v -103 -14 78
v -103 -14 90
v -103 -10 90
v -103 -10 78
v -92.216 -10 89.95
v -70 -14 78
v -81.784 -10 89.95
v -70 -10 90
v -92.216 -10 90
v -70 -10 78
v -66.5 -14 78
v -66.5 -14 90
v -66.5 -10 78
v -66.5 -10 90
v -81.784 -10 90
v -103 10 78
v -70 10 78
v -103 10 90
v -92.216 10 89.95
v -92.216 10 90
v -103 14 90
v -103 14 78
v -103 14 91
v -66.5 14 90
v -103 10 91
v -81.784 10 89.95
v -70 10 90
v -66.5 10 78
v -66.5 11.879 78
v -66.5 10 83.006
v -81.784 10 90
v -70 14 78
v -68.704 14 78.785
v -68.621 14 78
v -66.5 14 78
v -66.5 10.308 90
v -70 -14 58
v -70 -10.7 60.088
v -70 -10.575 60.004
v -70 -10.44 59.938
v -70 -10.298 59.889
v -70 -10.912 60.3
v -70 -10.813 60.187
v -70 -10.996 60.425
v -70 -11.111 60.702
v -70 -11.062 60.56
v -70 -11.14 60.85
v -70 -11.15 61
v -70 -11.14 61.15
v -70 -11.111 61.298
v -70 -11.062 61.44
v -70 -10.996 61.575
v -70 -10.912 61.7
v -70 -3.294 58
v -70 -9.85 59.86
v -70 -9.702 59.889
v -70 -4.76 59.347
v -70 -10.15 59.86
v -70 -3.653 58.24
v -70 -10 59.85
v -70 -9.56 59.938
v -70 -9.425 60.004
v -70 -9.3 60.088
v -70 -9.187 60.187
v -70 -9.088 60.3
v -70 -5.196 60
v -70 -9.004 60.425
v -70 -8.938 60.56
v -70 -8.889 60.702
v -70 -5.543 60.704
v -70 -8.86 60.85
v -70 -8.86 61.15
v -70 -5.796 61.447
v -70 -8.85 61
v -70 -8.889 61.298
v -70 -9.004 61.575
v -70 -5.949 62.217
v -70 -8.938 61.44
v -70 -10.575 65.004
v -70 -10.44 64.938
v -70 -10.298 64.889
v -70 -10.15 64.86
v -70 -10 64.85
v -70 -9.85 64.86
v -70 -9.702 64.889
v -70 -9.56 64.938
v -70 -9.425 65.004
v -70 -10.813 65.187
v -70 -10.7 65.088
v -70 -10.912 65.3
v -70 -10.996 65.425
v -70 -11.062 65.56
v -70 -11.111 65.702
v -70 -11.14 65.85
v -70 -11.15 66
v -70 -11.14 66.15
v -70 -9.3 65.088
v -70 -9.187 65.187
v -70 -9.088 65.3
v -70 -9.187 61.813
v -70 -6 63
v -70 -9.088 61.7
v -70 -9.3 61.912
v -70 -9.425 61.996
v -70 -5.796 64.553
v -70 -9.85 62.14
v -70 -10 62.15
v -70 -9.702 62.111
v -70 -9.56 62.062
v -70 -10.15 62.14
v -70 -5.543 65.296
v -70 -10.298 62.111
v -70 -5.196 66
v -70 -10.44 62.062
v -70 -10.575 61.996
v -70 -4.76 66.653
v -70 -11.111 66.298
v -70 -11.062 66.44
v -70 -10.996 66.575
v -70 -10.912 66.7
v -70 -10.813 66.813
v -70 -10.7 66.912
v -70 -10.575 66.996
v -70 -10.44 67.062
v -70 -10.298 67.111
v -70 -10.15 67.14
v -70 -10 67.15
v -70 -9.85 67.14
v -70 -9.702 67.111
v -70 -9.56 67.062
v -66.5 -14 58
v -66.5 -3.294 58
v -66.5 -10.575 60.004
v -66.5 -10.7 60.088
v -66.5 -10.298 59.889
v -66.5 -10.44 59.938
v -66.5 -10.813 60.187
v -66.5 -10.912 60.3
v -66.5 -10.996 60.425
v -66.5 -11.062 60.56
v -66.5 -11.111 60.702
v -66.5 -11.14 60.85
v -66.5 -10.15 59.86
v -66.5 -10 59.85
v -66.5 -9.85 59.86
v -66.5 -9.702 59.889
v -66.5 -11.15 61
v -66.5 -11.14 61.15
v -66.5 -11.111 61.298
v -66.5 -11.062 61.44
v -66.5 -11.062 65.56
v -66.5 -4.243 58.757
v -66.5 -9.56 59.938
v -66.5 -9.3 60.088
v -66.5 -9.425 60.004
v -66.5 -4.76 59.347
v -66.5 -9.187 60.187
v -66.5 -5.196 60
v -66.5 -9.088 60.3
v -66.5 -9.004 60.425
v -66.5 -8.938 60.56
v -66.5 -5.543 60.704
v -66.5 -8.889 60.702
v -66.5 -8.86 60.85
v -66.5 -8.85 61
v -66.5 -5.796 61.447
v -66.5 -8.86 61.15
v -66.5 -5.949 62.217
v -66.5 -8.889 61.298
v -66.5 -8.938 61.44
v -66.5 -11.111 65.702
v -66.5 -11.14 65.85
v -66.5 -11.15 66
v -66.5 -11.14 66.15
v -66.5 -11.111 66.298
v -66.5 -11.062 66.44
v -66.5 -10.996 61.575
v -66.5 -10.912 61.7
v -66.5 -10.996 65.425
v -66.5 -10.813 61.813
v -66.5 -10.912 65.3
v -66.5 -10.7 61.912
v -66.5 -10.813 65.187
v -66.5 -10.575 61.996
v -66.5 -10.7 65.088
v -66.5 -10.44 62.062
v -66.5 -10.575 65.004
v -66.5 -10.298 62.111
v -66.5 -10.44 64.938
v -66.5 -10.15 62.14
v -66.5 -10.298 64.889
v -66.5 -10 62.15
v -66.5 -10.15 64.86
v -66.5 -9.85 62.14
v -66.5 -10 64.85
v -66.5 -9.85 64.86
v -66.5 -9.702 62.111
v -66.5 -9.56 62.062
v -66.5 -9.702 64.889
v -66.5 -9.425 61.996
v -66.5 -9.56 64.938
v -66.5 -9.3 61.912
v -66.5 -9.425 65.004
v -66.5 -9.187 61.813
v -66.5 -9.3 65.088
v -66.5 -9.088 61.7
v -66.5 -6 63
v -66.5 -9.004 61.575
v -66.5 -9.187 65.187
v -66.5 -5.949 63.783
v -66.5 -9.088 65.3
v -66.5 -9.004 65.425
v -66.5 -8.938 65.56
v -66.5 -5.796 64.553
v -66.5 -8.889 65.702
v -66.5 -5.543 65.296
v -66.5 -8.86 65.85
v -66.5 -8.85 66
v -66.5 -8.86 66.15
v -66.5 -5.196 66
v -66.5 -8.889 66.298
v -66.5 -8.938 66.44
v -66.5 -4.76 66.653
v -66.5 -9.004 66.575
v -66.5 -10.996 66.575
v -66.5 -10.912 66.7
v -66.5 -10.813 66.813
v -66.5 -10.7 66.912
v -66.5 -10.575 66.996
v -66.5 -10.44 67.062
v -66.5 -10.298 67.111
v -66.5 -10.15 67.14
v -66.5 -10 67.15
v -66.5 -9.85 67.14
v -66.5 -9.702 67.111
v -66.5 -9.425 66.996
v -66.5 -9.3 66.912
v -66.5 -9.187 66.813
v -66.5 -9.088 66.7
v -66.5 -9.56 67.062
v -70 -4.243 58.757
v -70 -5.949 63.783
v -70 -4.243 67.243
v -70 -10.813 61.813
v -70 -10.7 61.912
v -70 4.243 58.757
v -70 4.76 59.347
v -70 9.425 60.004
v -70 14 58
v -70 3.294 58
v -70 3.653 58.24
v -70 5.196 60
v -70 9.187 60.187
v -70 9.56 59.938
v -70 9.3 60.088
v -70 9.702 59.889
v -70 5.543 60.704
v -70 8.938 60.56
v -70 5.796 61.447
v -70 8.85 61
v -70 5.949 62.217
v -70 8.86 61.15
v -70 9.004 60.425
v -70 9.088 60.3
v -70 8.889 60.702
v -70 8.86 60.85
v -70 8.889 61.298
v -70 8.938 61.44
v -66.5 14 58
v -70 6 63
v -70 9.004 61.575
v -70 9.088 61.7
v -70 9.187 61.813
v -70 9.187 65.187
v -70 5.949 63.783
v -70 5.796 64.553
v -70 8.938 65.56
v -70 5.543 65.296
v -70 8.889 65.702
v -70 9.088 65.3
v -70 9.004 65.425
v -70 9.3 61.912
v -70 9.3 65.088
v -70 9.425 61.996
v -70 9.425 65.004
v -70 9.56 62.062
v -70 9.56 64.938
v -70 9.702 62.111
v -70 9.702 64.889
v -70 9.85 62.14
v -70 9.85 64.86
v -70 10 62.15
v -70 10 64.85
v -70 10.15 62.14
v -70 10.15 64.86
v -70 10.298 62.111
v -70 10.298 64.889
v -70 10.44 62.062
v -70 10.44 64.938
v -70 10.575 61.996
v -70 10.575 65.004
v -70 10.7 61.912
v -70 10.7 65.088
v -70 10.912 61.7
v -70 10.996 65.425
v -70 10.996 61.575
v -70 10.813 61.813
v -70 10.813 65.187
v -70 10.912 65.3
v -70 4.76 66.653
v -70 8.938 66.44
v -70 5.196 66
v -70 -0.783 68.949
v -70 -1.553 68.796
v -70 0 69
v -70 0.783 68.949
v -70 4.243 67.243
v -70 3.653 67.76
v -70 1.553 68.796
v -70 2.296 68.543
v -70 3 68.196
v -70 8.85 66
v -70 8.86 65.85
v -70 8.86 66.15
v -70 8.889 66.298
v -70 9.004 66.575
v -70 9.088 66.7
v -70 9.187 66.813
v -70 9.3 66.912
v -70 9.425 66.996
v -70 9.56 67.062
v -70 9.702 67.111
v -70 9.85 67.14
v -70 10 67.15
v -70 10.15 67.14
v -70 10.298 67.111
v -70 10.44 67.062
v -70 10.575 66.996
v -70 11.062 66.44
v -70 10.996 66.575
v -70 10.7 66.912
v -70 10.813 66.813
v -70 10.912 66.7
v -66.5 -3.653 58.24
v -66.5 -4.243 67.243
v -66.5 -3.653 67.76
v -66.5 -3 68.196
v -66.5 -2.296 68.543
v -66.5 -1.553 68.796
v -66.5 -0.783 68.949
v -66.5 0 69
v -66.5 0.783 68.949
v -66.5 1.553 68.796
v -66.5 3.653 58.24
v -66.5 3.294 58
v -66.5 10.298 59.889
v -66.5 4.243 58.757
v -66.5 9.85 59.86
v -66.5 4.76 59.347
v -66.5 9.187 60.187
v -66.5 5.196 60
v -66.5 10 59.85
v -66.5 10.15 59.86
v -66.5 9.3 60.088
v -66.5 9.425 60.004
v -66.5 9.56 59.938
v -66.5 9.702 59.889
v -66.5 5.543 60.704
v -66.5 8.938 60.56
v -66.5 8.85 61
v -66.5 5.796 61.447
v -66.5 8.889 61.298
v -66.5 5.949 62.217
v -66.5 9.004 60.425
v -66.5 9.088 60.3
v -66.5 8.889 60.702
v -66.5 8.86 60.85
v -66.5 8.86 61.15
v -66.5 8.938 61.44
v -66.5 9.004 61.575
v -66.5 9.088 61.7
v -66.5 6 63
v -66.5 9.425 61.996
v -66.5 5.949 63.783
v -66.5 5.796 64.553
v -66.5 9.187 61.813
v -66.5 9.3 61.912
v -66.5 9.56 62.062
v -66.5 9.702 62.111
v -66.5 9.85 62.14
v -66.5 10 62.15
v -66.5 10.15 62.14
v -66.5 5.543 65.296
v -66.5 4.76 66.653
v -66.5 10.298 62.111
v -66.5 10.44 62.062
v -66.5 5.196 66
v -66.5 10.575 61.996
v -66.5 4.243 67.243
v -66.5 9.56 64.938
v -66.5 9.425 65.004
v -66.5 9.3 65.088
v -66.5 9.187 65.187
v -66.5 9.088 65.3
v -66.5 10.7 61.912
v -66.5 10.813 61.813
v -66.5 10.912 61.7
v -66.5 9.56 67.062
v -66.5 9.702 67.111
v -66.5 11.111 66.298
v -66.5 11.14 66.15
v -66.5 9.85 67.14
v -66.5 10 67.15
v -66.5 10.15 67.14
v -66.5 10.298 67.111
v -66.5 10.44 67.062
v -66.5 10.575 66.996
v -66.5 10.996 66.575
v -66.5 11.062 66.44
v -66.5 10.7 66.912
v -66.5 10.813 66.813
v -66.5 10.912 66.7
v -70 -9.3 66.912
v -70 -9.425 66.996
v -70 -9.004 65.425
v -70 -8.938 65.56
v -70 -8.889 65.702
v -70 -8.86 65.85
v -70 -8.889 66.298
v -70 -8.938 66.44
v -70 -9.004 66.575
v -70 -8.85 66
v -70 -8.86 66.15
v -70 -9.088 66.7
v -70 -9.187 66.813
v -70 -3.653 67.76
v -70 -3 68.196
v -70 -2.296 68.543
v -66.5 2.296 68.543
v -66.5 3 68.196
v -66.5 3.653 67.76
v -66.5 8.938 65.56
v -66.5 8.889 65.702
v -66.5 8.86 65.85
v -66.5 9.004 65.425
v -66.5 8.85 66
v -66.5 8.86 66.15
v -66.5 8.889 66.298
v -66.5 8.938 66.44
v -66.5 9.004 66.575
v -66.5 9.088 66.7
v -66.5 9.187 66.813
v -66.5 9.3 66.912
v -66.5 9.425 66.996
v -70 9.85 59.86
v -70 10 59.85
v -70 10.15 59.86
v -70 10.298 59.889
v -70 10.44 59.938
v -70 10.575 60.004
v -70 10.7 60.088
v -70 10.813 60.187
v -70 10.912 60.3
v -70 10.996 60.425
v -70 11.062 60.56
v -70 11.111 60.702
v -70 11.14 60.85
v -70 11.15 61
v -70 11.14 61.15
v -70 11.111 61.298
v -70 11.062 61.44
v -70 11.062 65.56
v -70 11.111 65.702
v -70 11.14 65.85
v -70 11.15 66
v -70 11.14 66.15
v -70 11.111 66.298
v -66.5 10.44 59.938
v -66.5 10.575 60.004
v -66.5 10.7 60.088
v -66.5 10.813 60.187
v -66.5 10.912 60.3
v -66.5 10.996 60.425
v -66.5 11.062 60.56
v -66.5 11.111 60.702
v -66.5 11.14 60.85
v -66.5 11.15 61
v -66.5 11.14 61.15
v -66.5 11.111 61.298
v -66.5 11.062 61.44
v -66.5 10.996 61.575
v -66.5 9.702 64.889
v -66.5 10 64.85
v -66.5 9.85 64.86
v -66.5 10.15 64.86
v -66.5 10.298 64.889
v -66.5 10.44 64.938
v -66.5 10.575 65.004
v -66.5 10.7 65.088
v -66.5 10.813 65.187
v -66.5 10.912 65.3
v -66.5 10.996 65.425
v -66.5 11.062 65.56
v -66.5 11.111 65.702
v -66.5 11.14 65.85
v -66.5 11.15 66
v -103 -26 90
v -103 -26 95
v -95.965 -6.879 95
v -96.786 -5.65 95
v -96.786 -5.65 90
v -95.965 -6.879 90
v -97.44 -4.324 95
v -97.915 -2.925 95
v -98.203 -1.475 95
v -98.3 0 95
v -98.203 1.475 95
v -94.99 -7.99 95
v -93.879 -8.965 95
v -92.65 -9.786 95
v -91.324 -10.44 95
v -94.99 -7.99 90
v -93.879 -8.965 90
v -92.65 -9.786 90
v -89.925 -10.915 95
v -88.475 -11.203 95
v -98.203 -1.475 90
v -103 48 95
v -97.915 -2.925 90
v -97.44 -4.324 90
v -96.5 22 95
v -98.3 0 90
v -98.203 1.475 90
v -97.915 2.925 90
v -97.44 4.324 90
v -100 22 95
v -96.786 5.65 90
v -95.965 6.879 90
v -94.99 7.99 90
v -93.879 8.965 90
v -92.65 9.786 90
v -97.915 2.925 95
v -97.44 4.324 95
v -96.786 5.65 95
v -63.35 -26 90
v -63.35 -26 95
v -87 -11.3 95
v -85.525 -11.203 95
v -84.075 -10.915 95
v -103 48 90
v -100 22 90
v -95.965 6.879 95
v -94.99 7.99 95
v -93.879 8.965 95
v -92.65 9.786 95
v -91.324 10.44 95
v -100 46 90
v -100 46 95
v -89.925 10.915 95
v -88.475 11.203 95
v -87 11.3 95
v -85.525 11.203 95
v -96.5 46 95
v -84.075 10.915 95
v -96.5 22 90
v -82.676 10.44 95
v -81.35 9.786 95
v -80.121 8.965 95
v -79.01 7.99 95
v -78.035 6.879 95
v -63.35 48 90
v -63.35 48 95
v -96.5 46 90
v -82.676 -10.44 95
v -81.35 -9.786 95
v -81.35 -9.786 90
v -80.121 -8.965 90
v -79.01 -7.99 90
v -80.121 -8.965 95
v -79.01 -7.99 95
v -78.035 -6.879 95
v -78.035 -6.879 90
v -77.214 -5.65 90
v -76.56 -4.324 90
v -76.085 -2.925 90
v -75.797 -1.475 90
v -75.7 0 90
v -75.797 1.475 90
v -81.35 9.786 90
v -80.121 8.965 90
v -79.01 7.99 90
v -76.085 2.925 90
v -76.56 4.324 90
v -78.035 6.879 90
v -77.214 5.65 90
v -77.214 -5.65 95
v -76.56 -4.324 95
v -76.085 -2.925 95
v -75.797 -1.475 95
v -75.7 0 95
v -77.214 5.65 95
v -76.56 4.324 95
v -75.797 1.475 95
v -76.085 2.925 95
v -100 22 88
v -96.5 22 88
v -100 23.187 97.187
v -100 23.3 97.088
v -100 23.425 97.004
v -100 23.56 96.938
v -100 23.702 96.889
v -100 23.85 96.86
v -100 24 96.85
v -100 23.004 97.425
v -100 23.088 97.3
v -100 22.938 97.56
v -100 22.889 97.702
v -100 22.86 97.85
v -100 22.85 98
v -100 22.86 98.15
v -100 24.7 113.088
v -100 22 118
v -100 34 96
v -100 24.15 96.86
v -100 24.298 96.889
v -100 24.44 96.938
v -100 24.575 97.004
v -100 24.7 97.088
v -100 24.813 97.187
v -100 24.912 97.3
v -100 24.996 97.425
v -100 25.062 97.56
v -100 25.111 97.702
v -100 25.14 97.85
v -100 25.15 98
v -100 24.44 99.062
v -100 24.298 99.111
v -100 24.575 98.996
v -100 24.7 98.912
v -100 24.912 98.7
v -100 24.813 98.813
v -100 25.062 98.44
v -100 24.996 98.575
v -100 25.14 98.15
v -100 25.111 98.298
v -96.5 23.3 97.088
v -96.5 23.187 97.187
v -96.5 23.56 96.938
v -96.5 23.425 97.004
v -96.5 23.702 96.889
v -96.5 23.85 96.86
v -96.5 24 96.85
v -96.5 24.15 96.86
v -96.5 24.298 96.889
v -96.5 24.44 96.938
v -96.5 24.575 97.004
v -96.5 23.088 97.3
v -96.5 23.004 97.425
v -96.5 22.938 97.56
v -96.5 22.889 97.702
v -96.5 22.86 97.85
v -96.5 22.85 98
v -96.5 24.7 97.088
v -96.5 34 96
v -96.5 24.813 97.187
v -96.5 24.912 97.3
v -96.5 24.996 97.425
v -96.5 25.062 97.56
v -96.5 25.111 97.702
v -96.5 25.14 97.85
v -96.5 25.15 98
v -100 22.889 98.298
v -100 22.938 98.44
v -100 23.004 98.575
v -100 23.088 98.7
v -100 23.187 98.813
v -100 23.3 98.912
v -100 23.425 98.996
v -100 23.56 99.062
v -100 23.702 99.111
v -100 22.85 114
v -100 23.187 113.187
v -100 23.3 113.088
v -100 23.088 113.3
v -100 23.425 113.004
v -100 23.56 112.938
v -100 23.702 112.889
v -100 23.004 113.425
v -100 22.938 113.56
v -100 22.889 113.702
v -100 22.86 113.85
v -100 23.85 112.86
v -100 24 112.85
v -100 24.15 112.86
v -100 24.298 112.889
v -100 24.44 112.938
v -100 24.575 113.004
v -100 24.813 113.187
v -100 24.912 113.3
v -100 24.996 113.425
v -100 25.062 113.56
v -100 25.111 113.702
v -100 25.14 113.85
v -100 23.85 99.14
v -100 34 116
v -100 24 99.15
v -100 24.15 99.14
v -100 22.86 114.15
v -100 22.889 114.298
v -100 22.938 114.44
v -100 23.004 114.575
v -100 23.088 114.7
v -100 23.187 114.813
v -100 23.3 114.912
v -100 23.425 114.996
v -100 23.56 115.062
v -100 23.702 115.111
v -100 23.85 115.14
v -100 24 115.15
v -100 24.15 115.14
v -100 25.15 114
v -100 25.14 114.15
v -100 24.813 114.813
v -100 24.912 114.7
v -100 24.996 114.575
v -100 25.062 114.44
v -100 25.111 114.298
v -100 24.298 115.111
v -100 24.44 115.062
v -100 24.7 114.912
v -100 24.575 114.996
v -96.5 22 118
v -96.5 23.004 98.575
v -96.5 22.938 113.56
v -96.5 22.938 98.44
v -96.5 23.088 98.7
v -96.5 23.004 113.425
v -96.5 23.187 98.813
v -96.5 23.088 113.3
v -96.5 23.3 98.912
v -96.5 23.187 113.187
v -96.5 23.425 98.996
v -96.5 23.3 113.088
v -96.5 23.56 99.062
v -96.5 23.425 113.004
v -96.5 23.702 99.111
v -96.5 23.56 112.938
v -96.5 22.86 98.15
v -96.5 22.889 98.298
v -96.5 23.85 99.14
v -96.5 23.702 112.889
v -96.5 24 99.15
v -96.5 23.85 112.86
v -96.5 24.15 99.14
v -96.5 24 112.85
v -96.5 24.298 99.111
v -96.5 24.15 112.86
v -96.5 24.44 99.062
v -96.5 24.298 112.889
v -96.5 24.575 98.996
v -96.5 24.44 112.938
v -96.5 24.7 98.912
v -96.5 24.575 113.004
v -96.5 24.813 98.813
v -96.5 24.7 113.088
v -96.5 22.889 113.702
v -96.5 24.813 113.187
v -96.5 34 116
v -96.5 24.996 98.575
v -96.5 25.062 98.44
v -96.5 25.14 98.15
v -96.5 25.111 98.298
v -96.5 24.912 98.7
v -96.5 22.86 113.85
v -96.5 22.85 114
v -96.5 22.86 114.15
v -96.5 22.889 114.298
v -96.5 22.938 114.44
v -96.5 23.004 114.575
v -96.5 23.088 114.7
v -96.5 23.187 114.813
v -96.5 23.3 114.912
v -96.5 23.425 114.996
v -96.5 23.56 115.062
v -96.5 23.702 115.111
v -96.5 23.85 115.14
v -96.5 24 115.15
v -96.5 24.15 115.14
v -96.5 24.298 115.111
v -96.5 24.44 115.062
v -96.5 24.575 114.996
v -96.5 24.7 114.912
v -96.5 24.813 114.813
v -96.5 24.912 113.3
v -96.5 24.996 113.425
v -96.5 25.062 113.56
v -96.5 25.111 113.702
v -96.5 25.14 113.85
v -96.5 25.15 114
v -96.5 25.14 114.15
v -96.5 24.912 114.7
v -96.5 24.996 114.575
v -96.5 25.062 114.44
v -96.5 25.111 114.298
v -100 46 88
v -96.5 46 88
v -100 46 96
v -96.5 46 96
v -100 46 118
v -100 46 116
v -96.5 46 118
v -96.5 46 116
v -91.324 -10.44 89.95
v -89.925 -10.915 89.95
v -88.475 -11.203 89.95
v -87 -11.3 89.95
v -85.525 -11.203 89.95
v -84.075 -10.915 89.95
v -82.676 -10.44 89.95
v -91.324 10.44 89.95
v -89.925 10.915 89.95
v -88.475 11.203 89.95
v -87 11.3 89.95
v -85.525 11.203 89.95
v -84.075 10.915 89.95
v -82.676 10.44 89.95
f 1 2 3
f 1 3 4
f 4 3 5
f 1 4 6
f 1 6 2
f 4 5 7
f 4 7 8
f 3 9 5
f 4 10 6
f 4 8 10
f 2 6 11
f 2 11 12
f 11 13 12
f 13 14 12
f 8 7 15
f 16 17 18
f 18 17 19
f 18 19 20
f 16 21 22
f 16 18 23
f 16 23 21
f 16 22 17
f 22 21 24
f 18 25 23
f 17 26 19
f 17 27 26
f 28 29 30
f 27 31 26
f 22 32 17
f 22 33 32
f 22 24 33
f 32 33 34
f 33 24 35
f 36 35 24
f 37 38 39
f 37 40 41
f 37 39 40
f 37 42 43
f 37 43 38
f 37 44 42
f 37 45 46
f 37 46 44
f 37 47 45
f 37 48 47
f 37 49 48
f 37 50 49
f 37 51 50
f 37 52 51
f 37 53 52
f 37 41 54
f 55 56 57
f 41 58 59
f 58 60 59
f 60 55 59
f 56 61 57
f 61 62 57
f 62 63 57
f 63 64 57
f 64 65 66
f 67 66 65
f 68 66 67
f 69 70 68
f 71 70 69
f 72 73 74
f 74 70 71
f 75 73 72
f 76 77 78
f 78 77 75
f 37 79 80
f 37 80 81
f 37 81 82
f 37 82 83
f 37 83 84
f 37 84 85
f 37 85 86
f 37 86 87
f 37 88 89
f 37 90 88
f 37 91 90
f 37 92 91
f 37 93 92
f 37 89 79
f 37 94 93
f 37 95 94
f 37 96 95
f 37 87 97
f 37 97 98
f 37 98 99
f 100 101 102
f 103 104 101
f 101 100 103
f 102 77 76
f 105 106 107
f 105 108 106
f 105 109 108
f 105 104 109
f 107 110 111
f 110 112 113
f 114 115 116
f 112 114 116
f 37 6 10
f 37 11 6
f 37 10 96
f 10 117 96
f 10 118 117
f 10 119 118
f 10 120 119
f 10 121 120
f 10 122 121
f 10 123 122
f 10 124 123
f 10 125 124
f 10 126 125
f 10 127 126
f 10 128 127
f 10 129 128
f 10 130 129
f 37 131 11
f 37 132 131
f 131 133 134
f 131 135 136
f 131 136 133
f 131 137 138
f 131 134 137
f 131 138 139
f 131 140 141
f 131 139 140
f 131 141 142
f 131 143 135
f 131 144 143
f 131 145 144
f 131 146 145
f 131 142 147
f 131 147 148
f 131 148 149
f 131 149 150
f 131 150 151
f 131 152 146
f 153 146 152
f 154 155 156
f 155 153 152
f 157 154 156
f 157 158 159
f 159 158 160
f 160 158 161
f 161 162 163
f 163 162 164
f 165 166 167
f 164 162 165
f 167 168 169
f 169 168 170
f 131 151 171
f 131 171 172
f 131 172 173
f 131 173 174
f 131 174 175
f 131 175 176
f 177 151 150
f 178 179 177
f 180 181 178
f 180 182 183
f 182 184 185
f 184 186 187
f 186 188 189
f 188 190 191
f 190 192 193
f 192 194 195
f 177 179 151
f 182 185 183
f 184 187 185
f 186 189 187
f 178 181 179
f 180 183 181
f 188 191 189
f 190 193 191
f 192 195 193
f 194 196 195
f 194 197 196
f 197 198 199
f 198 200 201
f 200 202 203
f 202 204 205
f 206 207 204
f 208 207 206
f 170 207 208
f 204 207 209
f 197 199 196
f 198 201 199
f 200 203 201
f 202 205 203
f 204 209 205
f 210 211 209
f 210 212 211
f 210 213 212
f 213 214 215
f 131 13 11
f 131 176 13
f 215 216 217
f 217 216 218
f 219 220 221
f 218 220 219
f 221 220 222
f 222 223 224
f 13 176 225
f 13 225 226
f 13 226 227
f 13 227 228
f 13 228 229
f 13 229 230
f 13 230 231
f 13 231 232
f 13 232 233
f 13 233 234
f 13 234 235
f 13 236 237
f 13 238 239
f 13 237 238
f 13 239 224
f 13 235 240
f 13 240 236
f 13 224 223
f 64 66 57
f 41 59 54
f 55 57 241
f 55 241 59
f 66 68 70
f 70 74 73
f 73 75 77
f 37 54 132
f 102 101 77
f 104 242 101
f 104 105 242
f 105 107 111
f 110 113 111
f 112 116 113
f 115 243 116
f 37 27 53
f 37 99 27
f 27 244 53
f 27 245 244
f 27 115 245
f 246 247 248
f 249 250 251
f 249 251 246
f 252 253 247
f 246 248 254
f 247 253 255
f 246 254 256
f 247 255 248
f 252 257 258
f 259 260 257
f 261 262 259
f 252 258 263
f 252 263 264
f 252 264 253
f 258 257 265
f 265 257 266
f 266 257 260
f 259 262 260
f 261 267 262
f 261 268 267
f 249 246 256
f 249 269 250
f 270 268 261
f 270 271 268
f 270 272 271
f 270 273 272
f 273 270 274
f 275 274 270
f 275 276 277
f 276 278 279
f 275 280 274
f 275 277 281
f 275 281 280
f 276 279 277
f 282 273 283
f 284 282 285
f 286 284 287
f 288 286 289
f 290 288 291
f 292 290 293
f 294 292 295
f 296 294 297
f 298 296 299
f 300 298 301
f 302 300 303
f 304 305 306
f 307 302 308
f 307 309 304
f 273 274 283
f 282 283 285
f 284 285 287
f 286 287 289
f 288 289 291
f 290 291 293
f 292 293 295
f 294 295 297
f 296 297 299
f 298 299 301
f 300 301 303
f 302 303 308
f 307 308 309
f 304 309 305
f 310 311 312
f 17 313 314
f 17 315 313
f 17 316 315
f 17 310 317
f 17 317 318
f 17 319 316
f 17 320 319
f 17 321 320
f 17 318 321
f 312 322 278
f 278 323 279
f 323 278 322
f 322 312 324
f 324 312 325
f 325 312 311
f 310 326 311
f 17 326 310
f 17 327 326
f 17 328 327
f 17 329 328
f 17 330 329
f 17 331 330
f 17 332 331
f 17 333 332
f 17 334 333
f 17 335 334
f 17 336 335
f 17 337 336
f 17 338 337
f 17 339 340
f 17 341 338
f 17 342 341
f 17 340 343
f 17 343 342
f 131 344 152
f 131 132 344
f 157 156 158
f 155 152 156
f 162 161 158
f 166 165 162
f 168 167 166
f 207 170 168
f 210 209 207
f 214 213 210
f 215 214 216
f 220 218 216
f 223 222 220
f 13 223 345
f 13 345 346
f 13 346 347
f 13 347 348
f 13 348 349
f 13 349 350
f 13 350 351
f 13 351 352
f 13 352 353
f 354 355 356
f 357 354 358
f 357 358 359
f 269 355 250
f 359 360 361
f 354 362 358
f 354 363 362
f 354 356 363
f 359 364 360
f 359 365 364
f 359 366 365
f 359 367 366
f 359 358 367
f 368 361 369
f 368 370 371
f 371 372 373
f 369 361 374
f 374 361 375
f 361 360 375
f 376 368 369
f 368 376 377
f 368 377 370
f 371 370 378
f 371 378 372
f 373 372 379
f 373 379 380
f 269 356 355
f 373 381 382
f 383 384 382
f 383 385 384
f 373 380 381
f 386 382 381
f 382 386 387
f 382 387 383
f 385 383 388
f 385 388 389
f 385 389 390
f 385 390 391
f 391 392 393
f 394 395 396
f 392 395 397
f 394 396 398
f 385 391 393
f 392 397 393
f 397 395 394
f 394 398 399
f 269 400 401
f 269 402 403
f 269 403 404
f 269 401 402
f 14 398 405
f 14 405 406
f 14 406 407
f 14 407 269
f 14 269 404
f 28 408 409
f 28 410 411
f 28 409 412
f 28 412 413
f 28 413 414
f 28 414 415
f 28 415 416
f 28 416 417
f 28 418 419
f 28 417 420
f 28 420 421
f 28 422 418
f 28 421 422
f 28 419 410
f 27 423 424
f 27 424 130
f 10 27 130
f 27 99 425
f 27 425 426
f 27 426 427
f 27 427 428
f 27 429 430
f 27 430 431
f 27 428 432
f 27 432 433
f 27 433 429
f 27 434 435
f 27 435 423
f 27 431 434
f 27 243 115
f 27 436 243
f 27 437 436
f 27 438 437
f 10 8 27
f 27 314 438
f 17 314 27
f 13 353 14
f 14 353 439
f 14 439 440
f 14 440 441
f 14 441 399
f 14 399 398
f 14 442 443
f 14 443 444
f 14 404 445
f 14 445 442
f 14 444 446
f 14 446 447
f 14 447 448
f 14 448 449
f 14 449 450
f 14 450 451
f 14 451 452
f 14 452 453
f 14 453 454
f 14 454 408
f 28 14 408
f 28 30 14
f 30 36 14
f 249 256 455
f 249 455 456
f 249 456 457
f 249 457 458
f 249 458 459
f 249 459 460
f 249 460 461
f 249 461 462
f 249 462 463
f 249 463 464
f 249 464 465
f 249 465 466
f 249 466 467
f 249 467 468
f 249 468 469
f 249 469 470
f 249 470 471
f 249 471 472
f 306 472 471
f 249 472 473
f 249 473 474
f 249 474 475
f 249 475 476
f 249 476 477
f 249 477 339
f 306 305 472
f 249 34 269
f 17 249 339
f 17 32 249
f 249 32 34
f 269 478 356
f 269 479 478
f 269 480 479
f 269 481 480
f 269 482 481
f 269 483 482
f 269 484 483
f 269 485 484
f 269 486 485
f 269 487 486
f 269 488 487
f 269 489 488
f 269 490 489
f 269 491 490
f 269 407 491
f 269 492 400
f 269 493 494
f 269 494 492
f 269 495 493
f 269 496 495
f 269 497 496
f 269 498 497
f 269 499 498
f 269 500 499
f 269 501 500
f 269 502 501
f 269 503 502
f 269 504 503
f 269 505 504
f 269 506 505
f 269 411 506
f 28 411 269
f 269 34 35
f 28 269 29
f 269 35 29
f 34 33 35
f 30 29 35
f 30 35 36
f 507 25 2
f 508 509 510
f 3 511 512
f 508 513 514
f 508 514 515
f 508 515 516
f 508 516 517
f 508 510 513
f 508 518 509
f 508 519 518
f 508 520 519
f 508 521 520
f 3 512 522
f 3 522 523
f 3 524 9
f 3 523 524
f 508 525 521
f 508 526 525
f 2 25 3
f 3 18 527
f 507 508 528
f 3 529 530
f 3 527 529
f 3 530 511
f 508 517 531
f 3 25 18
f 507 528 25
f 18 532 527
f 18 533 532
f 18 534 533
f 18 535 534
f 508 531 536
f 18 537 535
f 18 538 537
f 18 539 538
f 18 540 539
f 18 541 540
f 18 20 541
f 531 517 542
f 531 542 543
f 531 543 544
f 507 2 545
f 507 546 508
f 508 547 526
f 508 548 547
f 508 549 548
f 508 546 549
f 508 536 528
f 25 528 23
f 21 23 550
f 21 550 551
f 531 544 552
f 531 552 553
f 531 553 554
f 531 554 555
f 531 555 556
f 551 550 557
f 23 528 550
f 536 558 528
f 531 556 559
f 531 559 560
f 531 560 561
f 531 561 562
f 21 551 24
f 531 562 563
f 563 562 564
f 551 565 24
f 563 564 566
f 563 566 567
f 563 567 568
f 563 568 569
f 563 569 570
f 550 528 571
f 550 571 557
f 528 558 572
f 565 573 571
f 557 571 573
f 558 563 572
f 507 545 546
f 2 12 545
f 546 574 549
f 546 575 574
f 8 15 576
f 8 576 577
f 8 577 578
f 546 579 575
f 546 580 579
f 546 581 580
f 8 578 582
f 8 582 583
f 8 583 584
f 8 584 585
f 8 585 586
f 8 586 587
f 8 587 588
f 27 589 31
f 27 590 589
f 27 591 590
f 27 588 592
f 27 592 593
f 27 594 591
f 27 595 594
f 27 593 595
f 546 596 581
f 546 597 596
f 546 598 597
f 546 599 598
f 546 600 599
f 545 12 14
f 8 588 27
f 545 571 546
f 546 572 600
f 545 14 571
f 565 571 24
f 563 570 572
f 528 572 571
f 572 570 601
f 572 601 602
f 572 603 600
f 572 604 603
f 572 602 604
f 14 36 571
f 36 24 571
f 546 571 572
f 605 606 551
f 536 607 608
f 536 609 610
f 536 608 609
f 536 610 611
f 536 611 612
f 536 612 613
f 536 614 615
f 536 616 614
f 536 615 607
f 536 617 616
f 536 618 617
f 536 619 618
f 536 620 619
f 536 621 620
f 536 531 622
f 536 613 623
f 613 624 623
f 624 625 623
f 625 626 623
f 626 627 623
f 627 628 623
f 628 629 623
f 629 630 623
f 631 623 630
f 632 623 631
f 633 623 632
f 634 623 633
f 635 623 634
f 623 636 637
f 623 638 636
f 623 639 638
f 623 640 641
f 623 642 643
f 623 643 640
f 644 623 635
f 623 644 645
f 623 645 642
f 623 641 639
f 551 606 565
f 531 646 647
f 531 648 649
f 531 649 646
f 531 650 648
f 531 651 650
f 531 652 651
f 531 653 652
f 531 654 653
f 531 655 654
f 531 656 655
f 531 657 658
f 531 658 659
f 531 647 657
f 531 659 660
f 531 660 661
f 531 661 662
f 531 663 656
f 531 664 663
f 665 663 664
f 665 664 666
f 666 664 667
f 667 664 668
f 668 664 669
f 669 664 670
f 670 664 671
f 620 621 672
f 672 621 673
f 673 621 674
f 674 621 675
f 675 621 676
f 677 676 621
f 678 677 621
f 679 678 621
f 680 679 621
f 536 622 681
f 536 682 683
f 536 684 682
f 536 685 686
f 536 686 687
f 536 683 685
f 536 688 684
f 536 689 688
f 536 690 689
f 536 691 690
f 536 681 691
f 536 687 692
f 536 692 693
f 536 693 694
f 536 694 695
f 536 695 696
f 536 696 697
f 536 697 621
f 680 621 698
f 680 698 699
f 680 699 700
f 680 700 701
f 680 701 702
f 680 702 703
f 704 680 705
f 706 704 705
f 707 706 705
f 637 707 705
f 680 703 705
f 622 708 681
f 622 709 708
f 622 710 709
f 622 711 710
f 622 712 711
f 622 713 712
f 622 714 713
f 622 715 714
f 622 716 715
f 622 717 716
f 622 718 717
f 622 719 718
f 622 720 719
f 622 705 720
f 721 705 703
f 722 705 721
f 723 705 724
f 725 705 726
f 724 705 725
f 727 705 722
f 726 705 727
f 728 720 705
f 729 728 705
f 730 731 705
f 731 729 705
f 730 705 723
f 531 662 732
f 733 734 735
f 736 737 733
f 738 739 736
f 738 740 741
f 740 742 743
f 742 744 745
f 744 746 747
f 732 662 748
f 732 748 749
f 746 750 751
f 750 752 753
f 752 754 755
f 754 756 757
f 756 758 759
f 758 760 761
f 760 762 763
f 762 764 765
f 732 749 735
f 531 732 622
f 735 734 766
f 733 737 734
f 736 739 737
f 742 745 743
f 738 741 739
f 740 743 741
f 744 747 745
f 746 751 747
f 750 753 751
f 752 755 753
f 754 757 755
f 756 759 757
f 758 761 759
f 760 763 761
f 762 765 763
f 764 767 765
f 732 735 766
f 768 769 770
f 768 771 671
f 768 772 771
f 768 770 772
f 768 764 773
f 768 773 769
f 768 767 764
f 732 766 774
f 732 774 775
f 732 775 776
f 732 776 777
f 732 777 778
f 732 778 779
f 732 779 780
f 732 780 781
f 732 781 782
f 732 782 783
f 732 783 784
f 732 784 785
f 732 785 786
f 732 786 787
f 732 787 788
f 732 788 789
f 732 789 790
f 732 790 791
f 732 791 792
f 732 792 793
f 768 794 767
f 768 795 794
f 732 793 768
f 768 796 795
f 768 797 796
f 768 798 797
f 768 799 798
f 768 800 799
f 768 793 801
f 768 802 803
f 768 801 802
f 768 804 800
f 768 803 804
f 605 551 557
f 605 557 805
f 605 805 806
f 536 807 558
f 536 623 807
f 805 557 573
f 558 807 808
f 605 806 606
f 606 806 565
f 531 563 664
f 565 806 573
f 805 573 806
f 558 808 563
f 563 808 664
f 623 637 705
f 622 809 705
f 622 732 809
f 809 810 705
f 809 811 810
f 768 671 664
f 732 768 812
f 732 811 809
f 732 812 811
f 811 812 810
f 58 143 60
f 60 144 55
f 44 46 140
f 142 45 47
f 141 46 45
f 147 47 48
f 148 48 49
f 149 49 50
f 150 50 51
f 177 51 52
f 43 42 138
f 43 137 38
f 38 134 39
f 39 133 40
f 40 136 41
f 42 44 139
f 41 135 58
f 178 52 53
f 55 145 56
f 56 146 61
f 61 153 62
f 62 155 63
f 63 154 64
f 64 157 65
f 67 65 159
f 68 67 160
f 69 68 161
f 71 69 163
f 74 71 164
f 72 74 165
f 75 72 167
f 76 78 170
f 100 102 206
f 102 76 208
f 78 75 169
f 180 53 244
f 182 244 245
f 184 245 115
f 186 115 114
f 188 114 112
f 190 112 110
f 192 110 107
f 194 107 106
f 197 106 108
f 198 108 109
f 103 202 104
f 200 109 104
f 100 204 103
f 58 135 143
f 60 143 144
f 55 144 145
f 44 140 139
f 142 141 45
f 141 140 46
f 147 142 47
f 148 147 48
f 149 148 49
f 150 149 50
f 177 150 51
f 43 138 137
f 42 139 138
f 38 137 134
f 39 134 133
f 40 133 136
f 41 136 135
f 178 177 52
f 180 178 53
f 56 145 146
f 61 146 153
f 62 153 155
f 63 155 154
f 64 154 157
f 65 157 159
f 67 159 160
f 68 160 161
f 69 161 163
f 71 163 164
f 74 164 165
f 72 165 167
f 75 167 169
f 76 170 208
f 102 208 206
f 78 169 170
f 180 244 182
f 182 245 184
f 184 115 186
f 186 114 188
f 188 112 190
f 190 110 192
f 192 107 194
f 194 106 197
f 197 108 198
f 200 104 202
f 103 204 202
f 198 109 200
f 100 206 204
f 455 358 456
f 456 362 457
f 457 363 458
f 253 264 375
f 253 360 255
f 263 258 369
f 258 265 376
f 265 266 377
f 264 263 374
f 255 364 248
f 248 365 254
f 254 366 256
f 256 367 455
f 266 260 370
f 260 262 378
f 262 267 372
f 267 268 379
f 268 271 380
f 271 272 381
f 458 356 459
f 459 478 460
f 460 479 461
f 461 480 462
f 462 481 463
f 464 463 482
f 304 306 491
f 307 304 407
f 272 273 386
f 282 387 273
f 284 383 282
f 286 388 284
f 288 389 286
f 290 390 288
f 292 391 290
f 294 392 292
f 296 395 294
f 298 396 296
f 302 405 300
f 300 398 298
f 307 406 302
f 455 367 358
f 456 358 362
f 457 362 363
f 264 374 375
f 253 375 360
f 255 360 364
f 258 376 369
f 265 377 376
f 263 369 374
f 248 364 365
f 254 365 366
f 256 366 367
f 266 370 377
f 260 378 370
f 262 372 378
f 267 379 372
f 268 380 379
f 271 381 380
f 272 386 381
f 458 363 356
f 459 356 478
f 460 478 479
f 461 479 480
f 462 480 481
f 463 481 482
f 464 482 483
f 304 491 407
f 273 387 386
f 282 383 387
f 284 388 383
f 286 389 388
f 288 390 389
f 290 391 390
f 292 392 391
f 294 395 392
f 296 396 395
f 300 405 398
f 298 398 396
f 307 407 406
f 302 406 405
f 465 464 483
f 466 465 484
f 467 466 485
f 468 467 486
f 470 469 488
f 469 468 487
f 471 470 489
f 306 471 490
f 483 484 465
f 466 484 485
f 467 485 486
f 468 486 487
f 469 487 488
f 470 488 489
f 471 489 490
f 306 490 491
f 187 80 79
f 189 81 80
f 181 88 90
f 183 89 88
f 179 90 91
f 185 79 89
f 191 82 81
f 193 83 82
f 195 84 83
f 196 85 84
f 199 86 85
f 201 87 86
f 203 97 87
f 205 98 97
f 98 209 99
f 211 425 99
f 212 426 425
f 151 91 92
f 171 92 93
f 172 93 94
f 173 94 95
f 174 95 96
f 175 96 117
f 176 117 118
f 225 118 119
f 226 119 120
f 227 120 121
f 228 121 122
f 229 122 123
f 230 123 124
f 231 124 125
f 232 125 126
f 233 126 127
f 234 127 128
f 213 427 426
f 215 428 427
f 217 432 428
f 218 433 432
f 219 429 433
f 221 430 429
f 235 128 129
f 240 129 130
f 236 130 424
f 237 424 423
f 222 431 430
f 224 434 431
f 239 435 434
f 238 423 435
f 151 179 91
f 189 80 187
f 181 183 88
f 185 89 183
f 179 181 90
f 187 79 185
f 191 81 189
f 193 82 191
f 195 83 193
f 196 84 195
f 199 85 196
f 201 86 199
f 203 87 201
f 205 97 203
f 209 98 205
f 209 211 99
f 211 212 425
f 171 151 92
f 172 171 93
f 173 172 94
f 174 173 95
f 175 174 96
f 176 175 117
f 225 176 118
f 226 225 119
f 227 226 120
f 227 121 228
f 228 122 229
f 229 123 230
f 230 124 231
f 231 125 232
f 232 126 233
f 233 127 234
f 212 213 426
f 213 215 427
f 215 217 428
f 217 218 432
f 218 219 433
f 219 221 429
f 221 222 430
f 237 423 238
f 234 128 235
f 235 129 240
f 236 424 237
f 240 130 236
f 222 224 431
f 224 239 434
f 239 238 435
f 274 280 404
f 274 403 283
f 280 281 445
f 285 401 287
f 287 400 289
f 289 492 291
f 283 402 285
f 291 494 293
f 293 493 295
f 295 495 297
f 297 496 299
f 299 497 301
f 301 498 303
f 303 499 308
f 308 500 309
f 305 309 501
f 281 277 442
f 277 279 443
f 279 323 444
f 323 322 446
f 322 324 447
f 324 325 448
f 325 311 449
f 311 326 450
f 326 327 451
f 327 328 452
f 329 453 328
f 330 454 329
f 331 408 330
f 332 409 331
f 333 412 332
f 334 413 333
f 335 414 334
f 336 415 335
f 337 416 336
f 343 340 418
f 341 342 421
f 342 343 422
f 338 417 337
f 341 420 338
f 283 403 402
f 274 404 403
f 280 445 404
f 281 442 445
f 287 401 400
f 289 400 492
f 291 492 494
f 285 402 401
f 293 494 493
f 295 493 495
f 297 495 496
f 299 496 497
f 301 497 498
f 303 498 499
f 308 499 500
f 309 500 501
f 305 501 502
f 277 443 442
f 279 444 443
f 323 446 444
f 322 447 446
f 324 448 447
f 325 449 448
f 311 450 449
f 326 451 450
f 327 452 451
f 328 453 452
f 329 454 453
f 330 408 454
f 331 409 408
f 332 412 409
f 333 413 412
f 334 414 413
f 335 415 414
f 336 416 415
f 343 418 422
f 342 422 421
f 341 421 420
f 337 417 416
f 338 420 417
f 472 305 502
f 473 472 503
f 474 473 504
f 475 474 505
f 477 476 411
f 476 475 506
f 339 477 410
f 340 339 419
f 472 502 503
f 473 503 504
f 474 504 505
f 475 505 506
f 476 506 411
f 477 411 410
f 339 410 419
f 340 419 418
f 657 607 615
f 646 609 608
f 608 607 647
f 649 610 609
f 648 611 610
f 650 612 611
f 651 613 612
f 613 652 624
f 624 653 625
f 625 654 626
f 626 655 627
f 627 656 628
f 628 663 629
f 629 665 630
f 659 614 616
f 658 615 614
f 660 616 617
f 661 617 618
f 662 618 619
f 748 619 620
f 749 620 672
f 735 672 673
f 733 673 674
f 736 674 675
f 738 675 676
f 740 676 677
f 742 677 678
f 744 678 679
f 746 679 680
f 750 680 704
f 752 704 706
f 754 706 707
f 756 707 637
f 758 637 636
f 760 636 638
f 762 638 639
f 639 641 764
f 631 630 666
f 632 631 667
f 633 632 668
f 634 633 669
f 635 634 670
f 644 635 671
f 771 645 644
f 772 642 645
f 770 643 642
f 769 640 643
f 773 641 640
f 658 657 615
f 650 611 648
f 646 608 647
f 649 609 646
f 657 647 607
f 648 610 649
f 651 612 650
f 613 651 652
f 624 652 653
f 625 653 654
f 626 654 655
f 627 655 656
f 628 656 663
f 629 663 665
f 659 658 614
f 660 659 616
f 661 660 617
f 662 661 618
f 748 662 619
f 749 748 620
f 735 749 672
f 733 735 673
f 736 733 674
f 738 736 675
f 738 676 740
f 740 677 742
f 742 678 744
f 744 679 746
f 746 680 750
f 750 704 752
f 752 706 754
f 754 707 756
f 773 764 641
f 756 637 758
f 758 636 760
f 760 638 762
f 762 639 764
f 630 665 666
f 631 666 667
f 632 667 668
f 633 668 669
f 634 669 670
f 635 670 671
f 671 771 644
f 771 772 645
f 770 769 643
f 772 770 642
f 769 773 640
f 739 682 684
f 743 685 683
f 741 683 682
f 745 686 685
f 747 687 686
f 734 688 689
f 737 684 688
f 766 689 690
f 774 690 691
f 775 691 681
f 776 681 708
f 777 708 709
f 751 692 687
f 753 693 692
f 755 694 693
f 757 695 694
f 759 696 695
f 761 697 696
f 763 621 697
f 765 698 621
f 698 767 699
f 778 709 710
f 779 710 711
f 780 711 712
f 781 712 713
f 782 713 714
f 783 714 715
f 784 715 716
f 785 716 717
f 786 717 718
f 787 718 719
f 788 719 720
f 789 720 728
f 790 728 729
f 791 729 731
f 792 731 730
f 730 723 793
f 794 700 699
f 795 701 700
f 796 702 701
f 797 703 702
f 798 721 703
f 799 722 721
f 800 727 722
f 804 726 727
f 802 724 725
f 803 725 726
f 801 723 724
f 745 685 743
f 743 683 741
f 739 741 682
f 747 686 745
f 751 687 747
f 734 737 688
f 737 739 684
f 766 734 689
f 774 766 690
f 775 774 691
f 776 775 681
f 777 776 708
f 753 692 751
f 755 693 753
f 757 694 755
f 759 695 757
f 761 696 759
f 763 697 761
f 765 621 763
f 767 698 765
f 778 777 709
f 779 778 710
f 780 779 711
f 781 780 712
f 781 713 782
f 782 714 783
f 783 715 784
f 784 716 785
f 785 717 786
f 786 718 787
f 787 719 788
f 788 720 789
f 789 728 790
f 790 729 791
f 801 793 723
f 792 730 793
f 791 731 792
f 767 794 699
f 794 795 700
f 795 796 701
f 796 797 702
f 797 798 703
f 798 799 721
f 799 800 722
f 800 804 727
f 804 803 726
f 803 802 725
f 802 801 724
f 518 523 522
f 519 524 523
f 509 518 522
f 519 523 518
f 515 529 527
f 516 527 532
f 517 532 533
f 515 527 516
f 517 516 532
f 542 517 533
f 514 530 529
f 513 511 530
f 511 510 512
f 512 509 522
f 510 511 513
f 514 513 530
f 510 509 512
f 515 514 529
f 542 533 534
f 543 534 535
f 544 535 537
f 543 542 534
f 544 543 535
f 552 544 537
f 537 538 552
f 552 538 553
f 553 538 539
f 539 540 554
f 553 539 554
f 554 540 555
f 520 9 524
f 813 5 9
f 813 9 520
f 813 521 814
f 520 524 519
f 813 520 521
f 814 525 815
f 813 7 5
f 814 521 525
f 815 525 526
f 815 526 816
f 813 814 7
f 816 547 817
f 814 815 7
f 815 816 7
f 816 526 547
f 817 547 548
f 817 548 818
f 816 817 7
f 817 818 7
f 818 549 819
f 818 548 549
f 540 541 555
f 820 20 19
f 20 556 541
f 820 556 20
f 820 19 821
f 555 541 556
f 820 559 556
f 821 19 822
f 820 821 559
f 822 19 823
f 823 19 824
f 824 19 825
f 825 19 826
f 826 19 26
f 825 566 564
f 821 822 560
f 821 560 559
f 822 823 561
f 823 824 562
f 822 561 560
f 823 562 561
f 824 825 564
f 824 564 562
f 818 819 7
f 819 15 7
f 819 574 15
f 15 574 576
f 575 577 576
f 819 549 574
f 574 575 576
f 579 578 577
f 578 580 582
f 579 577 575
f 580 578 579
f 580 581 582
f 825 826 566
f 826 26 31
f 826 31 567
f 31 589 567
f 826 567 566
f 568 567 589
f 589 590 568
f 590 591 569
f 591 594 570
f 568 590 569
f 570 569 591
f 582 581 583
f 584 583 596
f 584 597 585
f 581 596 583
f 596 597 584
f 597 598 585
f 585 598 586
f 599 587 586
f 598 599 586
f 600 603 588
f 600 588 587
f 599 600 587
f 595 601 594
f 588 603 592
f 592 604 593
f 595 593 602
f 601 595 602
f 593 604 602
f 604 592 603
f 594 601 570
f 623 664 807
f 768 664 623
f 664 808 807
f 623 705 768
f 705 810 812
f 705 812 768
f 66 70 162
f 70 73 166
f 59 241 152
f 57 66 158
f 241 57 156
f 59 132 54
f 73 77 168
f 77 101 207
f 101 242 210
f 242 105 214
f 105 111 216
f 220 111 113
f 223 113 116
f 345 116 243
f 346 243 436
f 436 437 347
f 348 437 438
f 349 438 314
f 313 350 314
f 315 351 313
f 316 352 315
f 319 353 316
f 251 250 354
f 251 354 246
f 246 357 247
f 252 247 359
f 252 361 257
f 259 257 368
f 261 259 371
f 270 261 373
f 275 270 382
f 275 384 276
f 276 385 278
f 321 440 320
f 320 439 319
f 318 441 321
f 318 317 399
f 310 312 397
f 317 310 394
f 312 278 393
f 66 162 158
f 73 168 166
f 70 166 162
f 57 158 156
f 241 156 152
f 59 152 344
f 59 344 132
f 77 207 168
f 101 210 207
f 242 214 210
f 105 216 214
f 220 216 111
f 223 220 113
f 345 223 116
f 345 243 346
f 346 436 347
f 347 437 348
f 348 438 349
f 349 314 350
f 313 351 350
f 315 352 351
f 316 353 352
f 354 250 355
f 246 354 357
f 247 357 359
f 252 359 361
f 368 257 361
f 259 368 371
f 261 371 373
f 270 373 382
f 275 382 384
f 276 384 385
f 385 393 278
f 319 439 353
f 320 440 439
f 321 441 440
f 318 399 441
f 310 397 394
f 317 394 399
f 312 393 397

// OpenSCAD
// =============================================================================
// CONTROL POD — E-stop (slap-down) + SSD1331 OLED, rear-top of the robot
// =============================================================================
// The tray HOOD is retired (official Jetson case adopted), which orphaned the
// E-stop pod + OLED. This part re-homes them at the REAR-TOP, in the pocket
// BEHIND the riser rear wall (x < -63.35).
//
// The rear is CONGESTED (all mapped by the free-space probe 2026-07-08):
//   * the two REAR SHOULDERS occupy x-63.5, |y|>14, z45..72 — structure at the
//     wall must stay in the CENTRAL y±14 channel;
//   * the mezzanine STACK sits 0.65 mm behind the 3.2 mm riser wall (x>-59.5),
//     so no INNER heat-set boss fits — the riser instead grows OUTER bosses that
//     protrude into the (clear) central pocket, and the pod bolts to their rear
//     faces (x-66.5). riser_bay POD_MOUNT + the guard exception cover this;
//   * the stock TRUNK rear lip fills the low centre (x≈-67, y±5, z40..58);
//   * the rear SHOULDER tops end at z≈80 -> above that the rear is OPEN.
// So: a CENTRAL COLUMN bolts to the riser pocket-bosses (y±10, z61/66); the deck
// cantilevers back over the pocket; the E-stop block hangs at x-87 (front x-71
// clears the boss/trunk lip, rear x-103 clears the shoulder at x-104); the OLED
// rises above the shoulder line (z>80) where it's clear.
//
// Frame = TRUNK frame (+x FRONT, z up).
// E-STOP (Mxuteuk HB2-ES544, Ø22 hole, Ø40 mushroom, 2x NC): UP on the deck
//   (z90); the ~Ø32×50 contact block hangs into the pocket. Panel nut clamps it.
// OLED (SSD1331 96×64, ~27×20 active): the Ø40 E-stop mushroom cap fouls any
//   panel directly behind it, so the OLED sits BESIDE it — the deck extends to
//   +y48 (above the shoulder line, clear) and a vertical panel there faces -x
//   for an operator behind-right. 4x M2 + a window.
// CABLE: E-stop NC pair + OLED SPI drop through the column grommet (Ø12, y0 z63,
//   above the trunk lip) -> the matching riser rear-wall slot -> the bay
//   (power-board NC lines + the Arduino Nano SPI). Provision; route at wiring.
// PRINT: PETG-CF (or PA6-CF), COLUMN-FACE-DOWN (the flat riser-facing face on the
//   bed); deck + OLED panel rise -> light supports under the deck + OLED. 3 walls
//   / 20% / ~24 g. print 1. NOTE: light central 4x M3 mount — the E-stop is a
//   PALM slap, not a hammer; a very hard strike may flex the deck (acceptable).

$fn = 48; EPS = 0.05;
M3_CLEAR = 3.4; M2_CLEAR = 2.3;

BOSS_X   = -66.5;                  // riser pocket-boss REAR face (pod bolts here)
COL_X0   = -70.0;                  // column rear face (behind the boss)
COL_HY   = 14;                     // column half-width (clears shoulders at y15)
MOUNT    = [[-10, 61], [10, 61], [-10, 66], [10, 66]];   // (y,z) — matches riser

ES       = [-87, 0];               // E-stop panel-hole center (x,y)
ES_HOLE  = 22.6;                   // Ø22 thread + clearance
DECK_Z   = 90; DECK_T = 5;         // top deck z90..95 (E-stop mounts here)
DECK_X0  = -103; DECK_X1 = -63.35; // deck x-103..-63.35 (over the pocket)
DECK_Y0  = -26; DECK_Y1 = 48;      // deck asymmetric: +y extension carries the OLED
OLED_X   = -100;                   // OLED panel face (x), beside the mushroom (+y)

module control_pod() {
    difference() {
        union() {
            // --- central column: bolts to the riser pocket-bosses, rises to deck
            translate([COL_X0, -COL_HY, 58])
                cube([BOSS_X - COL_X0, 2*COL_HY, DECK_Z - 58 + 1]);   // z58..91 (laps deck)
            // --- top deck (E-stop seat + OLED shelf), cantilevered over pocket ---
            translate([DECK_X0, DECK_Y0, DECK_Z])
                cube([DECK_X1 - DECK_X0, DECK_Y1 - DECK_Y0, DECK_T]);
            // --- gussets: column -> deck underside, stiffen the cantilever ---
            for (sy = [-1, 1])
                translate([DECK_X0, sy > 0 ? COL_HY - 4 : -COL_HY, 78])
                    cube([BOSS_X - DECK_X0, 4, DECK_Z - 78 + 1]);
            // --- OLED panel: VERTICAL, on the +y deck extension beside the
            //     mushroom (y22..46, clear of the Ø40 cap), faces -x ---
            translate([OLED_X, 22, 88]) cube([3.5, 24, 30]);        // z88..118 (laps deck)
        }
        // ---- mount bolt clearances (axis x, through the column into the bosses)
        for (b = MOUNT)
            translate([COL_X0 - EPS, b[0], b[1]]) rotate([0, 90, 0])
                cylinder(d = M2_CLEAR, h = BOSS_X - COL_X0 + 2*EPS);  // M2 (pinched pad)
        // ---- E-stop panel hole ----
        translate([ES[0], ES[1], DECK_Z - EPS]) cylinder(d = ES_HOLE, h = DECK_T + 2*EPS);
        // ---- OLED window + 4x M2 (on the vertical +y panel, x-face) ----
        translate([OLED_X - EPS, 34, 96]) cube([3.5 + 2*EPS, 21, 20]);   // window, ctr y34 z106
        for (my = [-1, 1], mz = [-1, 1])
            translate([OLED_X - EPS, 34 + my*10, 106 + mz*8]) rotate([0, 90, 0])
                cylinder(d = M2_CLEAR, h = 3.5 + 2*EPS);                 // 4x M2 corners
        // ---- cable grommet: E-stop NC + OLED SPI drop into the bay (y0 z63) ----
        translate([COL_X0 - EPS, 0, 63]) rotate([0, 90, 0])
            cylinder(d = 12, h = BOSS_X - COL_X0 + 2*EPS);
    }
}

control_pod();
